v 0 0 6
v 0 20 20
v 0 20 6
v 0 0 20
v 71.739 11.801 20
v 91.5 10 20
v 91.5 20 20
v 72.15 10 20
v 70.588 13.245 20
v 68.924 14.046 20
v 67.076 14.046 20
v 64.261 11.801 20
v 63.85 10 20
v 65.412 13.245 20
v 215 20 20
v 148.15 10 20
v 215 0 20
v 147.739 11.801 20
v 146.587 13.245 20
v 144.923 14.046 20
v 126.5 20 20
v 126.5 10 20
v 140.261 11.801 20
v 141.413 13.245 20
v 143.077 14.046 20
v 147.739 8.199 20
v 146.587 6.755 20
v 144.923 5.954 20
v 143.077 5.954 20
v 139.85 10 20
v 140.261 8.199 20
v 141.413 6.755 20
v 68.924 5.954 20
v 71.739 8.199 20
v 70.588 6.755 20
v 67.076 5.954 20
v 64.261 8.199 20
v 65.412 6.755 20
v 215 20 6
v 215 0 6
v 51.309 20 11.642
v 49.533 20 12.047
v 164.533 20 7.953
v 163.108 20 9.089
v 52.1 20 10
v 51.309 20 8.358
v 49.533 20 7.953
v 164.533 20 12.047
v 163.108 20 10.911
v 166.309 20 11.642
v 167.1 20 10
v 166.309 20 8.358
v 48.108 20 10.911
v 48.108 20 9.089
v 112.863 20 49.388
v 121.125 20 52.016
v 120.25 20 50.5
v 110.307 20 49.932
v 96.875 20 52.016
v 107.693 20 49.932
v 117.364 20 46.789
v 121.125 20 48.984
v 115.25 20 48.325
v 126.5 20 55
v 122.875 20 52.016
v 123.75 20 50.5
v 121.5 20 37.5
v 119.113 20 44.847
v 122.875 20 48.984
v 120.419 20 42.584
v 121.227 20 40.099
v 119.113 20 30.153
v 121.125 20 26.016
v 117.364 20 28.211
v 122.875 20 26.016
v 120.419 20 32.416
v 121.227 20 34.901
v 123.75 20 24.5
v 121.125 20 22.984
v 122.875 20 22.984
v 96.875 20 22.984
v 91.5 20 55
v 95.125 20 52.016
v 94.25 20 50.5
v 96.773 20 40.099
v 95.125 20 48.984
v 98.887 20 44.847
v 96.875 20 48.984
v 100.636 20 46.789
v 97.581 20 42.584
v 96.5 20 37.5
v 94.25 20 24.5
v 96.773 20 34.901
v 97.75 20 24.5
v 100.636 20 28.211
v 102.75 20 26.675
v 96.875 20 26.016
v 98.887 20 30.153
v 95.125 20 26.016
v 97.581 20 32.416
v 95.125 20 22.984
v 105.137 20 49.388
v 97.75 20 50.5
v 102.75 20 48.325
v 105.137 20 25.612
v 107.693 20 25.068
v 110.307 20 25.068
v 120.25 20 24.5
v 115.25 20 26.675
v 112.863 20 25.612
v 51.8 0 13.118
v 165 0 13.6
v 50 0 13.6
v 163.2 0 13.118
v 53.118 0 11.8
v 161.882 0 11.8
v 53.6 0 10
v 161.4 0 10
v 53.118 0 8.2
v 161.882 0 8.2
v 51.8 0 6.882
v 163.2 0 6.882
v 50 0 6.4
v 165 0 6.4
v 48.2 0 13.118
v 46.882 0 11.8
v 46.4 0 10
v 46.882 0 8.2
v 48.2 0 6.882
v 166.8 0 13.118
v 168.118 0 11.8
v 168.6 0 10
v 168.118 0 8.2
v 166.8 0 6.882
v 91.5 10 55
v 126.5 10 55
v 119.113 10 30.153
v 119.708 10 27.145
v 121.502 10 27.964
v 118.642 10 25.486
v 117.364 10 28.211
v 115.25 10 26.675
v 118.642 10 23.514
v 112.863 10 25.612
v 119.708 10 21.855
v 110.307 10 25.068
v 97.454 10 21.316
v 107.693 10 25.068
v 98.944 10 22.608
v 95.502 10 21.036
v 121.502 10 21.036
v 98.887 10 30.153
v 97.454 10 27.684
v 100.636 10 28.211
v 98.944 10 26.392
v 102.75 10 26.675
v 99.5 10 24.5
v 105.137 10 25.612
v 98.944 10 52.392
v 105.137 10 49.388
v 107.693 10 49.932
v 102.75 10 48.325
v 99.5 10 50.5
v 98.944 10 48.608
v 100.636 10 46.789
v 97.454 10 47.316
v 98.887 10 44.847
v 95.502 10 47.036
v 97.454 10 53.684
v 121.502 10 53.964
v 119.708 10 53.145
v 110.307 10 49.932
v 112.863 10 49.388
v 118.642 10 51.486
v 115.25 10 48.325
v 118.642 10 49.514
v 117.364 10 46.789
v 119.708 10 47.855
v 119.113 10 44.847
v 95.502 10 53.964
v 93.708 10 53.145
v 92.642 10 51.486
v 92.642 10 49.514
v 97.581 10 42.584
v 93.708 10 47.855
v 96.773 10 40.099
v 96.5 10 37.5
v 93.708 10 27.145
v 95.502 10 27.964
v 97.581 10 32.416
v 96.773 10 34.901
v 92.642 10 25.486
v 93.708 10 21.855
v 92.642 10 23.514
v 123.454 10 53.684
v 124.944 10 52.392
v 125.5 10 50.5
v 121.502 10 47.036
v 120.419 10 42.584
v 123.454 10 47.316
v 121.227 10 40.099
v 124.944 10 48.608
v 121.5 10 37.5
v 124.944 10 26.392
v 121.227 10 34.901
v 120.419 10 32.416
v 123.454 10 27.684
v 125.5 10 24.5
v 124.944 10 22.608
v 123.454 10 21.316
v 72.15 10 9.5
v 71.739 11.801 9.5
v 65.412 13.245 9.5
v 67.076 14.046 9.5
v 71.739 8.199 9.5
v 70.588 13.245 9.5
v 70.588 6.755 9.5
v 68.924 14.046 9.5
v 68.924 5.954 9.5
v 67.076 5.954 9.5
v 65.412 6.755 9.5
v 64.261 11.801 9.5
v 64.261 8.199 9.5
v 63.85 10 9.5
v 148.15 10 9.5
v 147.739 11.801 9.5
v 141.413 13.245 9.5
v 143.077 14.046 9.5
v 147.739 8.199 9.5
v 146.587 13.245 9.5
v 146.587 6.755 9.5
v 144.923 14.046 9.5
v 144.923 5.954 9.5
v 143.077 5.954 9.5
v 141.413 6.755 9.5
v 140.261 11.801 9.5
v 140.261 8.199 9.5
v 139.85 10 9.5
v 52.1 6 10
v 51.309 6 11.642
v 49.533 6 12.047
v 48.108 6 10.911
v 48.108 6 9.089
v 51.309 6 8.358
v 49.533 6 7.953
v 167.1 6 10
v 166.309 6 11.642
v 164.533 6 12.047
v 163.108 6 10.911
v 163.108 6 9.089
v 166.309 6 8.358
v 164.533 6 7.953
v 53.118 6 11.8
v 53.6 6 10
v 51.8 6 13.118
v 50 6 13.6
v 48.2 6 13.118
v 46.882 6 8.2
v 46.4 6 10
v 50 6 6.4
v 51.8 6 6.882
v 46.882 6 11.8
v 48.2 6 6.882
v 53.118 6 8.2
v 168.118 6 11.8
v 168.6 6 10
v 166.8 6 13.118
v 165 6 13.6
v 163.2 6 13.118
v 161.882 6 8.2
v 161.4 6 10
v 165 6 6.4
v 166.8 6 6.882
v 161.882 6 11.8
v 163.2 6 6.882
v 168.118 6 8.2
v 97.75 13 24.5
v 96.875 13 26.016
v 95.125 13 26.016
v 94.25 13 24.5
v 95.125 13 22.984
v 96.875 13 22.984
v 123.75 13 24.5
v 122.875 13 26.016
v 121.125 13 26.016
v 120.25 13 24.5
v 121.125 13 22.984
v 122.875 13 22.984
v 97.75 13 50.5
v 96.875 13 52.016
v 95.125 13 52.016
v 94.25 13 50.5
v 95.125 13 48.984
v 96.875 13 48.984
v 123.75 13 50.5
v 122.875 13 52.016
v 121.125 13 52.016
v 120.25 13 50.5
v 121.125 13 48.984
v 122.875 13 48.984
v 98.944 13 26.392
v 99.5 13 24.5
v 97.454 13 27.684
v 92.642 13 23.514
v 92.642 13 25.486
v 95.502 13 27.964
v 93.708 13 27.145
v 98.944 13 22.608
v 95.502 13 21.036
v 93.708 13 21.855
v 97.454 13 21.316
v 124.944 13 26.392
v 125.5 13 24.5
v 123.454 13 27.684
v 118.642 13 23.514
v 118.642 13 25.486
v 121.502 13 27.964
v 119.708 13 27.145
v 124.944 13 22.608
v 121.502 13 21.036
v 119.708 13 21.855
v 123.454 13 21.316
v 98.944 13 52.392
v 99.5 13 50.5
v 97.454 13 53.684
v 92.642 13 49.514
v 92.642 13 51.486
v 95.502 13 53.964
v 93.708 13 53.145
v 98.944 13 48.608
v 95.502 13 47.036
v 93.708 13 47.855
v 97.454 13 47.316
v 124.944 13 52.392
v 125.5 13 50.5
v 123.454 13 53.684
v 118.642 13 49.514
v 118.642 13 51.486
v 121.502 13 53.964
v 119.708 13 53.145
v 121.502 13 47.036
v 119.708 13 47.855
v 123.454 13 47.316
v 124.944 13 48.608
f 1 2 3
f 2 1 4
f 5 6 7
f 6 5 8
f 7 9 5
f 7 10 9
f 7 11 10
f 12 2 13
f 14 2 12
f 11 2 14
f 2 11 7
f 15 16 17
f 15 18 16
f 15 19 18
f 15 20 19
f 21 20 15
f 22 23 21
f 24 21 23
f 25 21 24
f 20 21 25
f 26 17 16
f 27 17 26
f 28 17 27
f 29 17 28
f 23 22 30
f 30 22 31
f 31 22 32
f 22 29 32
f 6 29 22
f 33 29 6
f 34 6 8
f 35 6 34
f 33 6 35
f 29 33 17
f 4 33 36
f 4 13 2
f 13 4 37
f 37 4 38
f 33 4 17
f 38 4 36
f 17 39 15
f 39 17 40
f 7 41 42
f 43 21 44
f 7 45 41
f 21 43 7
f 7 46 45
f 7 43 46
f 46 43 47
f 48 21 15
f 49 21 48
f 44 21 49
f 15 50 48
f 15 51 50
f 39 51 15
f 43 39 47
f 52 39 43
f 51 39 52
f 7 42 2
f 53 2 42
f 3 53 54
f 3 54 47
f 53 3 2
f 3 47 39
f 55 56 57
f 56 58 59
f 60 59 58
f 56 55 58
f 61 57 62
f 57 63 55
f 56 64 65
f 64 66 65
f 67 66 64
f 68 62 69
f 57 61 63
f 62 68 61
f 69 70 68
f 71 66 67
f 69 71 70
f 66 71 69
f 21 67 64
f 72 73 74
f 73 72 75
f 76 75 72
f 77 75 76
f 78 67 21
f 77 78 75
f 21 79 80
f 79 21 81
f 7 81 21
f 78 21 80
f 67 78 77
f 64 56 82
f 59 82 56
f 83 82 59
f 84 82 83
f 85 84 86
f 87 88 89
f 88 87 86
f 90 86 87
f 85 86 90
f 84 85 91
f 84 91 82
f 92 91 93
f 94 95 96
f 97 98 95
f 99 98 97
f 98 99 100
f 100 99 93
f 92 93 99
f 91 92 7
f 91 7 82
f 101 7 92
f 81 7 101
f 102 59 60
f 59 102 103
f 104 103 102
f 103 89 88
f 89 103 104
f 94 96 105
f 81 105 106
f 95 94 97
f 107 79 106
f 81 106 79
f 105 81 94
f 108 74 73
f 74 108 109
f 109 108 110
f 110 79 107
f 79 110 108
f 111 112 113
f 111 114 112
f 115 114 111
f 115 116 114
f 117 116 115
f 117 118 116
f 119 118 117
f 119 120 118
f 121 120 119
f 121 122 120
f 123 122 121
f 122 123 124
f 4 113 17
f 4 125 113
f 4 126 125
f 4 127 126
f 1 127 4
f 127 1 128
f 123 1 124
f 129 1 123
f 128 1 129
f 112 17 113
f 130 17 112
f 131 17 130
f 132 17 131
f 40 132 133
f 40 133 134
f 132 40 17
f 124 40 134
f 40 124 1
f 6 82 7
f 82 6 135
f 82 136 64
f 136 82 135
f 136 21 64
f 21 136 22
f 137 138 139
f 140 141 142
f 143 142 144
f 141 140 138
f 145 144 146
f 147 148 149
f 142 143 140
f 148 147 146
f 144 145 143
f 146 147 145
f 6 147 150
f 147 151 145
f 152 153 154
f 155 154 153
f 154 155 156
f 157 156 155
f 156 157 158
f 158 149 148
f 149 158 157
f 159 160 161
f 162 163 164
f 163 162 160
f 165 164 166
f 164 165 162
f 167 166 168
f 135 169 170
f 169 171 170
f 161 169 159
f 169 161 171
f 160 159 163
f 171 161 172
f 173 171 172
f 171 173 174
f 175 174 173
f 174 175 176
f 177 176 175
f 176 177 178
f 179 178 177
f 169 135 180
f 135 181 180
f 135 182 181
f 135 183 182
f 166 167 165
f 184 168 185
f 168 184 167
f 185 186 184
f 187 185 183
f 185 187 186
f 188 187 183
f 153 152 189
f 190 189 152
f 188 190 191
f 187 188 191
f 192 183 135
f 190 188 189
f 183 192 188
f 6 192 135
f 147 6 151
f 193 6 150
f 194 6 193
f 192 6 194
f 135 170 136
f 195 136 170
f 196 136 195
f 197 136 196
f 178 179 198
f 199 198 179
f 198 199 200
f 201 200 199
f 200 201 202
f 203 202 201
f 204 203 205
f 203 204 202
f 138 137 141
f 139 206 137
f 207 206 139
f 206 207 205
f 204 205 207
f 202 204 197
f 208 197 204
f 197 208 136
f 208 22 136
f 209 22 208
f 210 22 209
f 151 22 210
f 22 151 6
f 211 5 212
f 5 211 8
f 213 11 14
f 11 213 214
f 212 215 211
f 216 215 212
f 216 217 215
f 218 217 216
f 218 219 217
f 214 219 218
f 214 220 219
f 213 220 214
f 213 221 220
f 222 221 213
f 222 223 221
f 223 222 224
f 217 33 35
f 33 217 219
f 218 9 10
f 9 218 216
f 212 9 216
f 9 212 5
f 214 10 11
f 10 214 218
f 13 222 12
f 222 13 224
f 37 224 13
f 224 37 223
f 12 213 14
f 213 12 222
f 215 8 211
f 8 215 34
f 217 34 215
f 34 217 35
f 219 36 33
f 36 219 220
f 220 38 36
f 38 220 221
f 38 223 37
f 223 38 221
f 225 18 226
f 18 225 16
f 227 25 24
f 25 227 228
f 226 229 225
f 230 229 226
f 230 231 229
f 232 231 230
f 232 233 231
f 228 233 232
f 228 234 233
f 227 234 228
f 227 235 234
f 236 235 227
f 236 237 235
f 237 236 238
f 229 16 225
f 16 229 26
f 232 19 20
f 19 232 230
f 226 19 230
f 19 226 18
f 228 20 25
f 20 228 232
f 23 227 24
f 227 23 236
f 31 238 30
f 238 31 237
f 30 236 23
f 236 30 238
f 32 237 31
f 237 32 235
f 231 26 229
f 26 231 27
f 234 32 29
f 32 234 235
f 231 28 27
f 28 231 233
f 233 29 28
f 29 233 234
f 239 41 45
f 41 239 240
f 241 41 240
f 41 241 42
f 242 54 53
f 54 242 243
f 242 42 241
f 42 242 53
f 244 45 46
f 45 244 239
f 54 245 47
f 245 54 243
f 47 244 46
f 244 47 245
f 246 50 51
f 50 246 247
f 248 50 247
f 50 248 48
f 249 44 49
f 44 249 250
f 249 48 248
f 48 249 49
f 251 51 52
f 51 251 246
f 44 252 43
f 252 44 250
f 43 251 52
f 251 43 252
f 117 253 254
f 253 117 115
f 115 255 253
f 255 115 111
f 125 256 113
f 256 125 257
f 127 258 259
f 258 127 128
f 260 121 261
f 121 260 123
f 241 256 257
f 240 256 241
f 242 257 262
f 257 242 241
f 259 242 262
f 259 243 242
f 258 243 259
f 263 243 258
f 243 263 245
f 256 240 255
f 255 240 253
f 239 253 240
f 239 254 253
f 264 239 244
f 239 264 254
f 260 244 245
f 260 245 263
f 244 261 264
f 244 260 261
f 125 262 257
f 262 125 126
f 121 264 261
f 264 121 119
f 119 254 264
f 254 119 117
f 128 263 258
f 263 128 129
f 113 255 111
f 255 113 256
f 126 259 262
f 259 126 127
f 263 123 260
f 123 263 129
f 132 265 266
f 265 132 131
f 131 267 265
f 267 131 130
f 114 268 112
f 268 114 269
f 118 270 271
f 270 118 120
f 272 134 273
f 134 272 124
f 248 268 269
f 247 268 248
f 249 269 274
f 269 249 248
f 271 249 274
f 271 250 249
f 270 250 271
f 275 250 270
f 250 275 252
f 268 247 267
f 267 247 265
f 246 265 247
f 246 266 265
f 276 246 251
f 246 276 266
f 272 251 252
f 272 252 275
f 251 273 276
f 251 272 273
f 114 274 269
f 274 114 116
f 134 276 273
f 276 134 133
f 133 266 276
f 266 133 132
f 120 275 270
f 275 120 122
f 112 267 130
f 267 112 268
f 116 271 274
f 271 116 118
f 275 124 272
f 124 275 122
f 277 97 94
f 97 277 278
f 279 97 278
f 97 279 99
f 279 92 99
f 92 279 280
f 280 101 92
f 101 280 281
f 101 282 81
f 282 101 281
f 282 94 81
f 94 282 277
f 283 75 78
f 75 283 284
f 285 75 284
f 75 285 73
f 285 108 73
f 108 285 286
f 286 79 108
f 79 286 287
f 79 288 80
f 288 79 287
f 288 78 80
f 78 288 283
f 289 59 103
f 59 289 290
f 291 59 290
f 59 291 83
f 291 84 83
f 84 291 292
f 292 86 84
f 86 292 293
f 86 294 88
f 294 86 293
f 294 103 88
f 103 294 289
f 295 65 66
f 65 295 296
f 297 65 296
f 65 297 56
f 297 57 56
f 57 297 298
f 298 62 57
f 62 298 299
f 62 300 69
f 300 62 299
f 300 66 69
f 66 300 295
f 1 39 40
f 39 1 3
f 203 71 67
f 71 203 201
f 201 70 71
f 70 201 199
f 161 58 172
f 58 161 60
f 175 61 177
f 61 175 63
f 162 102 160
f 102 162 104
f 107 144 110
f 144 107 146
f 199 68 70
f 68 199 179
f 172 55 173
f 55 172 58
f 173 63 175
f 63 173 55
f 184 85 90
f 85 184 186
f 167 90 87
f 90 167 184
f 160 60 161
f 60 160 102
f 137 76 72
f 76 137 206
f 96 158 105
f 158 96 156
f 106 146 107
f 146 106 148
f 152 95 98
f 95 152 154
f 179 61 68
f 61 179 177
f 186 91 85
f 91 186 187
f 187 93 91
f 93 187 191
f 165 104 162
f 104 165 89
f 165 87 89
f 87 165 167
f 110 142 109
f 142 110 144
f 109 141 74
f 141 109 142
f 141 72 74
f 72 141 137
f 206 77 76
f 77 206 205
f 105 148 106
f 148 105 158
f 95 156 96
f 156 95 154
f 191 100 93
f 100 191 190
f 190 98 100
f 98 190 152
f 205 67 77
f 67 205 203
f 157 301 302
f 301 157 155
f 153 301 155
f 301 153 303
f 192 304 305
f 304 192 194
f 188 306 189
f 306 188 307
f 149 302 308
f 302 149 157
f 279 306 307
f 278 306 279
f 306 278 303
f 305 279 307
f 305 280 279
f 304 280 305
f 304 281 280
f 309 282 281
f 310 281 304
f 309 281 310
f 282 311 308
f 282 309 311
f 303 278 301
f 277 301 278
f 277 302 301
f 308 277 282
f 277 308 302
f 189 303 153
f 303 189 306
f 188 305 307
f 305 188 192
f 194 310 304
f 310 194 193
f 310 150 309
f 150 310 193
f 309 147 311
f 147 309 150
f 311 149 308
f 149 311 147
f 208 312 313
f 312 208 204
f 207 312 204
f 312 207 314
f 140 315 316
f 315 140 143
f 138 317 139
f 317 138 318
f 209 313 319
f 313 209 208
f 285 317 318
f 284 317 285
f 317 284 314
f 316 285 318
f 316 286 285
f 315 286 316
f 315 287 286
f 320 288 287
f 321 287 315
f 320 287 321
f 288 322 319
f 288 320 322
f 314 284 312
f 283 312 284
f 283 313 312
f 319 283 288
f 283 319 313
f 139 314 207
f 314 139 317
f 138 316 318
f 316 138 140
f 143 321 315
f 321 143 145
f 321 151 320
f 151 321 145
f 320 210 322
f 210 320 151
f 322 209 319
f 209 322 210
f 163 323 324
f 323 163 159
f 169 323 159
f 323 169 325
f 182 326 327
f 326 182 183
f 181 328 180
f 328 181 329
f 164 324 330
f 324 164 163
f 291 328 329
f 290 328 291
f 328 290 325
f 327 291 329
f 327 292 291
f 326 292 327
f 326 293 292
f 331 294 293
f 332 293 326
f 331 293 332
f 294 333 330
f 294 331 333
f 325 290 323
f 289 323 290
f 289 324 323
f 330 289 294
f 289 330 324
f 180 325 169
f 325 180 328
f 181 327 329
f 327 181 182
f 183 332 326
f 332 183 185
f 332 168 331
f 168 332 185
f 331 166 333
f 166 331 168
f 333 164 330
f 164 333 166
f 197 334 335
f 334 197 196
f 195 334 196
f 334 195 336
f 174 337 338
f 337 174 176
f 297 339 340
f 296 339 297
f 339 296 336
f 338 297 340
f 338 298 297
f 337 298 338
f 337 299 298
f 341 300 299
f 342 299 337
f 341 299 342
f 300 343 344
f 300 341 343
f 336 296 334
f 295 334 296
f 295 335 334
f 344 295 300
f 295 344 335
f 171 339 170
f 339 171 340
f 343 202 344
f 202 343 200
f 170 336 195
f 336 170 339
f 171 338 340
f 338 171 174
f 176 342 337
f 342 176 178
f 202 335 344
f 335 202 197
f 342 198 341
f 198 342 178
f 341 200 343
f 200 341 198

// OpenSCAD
// Y_motor Nema 14

x=215;
 
difference() {
    start();
    cube([215, 20, 6]);
    color("yellow", 1.0) {    
    //Holes for rods
    translate([68,10,9.5])
    cylinder (h = 20, r=4.15);
    translate([144, 10, 9.5])
    cylinder (h = 20, r=4.15);
}    
//Hole for motor
color("blue", 1.0 ) {
    rotate([90,0,0])
    translate([109,37.5,-25])
    cylinder(h=30, r=12.5);}
//Holes for M4 screws
color( "black", 1.0) {
    rotate([90,0,0])
    translate([50,10,-30])
    cylinder (h = 40, r = 2.1);
    rotate([90,0,0])
    translate([x-50,10,-30])
    cylinder (h=40, r=2.1);
//Sinkings for M4 screws
    rotate([90,0,0])
    translate([50,10,-6])
    cylinder (h = 6, r=3.6);
    rotate([90,0,0])
    translate([x-50,10,-6])
    cylinder (h=6, r=3.6);    
//Holes for M3 screws, motor mounting
    rotate([90,0,0])
    translate([96,24.5,-25])
    cylinder (h=30, r=1.75);
    rotate([90,0,0])
    translate([122,24.5,-25])
    cylinder (h=30, r=1.75);
    rotate([90,0,0])
    translate([96,50.5,-25])
    cylinder (h=30, r=1.75);
    rotate([90,0,0])
    translate([122,50.5,-25])
    cylinder (h=30, r=1.75); }
//Sinkings for M3 screws
    rotate([90,0,0])
    translate([96,24.5,-13])
    cylinder (h=20, r=3.5);
    rotate([90,0,0])
    translate([122,24.5,-13])
    cylinder (h=20, r=3.5);
    rotate([90,0,0])
    translate([96,50.5,-13])
    cylinder (h=20, r=3.5);
    rotate([90,0,0])
    translate([122,50.5,-13])
    cylinder (h=20, r=3.5);
}
module start(){
cube([215,20,20]);
        color( "red", 1.0 ){
        translate([91.5,10,20])
        cube([35,10,35]);}
}  
